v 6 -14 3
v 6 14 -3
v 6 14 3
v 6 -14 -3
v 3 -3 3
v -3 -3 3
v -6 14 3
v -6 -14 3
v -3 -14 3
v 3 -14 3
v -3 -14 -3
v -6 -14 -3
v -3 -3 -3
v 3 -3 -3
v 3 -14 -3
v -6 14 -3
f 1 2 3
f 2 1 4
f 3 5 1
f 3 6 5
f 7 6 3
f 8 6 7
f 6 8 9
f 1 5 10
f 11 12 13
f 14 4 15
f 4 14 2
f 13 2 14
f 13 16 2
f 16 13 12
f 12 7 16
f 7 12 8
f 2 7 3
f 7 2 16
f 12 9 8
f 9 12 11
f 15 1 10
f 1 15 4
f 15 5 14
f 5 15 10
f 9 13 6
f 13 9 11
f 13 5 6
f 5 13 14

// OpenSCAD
$fn = $preview ? 64 : 256;

x = 12;
y = 28;
z = 6;

base_x = x-(3*2);
base_y = 11;

difference() {
	cube([x, y, z], center=true);
	translate([0, -(y/2-base_y/2), 0]) cube([base_x, base_y, z+1], center=true);
}
